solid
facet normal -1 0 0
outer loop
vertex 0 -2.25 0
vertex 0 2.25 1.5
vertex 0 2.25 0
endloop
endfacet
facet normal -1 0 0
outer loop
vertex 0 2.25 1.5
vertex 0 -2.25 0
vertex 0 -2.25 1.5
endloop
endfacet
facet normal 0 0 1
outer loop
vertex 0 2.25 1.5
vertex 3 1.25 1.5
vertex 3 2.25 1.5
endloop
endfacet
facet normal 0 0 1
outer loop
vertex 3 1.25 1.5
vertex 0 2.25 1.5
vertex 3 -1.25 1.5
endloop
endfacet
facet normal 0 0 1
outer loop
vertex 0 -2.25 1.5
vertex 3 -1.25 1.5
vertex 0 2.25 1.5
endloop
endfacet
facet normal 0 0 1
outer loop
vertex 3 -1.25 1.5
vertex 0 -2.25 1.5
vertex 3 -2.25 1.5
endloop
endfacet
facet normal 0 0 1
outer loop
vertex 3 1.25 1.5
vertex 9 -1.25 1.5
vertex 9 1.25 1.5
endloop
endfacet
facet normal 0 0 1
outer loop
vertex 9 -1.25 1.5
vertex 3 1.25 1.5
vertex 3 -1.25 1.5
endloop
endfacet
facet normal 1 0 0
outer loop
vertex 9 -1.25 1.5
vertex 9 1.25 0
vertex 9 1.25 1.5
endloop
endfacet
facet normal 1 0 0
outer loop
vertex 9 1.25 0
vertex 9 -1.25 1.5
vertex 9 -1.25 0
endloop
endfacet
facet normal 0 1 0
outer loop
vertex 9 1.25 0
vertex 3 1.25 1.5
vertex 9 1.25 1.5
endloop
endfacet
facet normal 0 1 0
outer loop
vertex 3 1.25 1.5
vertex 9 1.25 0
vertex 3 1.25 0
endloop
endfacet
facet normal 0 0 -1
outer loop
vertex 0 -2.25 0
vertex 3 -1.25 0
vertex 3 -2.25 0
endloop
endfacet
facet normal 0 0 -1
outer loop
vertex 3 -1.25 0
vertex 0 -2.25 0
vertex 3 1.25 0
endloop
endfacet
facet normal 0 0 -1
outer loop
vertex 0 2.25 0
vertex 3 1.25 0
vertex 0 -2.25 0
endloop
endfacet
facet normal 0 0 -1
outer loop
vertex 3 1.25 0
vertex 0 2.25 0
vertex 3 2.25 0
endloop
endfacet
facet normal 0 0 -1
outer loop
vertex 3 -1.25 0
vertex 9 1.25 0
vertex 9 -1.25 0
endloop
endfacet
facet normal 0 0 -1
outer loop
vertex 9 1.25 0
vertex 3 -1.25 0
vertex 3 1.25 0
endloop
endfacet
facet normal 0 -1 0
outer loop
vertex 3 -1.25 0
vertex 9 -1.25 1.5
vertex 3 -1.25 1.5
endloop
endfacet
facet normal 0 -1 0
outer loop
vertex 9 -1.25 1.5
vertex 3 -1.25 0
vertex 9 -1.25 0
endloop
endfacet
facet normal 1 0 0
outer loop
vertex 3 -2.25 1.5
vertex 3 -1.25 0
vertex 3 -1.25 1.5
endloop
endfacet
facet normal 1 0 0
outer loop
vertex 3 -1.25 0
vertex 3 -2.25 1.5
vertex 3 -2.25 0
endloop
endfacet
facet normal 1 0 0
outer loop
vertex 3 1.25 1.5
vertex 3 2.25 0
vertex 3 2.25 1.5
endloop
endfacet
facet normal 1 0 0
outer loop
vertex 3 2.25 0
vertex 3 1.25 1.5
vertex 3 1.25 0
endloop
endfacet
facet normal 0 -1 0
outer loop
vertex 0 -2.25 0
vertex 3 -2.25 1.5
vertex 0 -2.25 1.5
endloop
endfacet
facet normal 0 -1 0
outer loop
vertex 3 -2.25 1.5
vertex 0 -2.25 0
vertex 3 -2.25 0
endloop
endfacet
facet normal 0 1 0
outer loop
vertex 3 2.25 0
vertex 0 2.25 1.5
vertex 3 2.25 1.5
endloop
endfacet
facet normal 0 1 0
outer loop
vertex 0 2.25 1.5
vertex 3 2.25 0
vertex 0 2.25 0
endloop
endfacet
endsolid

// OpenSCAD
translate([0,-2.5/2,0])
cube([9,2.5,1.5]);
translate([0,-4.5/2,0])
cube([3,4.5,1.5]);
